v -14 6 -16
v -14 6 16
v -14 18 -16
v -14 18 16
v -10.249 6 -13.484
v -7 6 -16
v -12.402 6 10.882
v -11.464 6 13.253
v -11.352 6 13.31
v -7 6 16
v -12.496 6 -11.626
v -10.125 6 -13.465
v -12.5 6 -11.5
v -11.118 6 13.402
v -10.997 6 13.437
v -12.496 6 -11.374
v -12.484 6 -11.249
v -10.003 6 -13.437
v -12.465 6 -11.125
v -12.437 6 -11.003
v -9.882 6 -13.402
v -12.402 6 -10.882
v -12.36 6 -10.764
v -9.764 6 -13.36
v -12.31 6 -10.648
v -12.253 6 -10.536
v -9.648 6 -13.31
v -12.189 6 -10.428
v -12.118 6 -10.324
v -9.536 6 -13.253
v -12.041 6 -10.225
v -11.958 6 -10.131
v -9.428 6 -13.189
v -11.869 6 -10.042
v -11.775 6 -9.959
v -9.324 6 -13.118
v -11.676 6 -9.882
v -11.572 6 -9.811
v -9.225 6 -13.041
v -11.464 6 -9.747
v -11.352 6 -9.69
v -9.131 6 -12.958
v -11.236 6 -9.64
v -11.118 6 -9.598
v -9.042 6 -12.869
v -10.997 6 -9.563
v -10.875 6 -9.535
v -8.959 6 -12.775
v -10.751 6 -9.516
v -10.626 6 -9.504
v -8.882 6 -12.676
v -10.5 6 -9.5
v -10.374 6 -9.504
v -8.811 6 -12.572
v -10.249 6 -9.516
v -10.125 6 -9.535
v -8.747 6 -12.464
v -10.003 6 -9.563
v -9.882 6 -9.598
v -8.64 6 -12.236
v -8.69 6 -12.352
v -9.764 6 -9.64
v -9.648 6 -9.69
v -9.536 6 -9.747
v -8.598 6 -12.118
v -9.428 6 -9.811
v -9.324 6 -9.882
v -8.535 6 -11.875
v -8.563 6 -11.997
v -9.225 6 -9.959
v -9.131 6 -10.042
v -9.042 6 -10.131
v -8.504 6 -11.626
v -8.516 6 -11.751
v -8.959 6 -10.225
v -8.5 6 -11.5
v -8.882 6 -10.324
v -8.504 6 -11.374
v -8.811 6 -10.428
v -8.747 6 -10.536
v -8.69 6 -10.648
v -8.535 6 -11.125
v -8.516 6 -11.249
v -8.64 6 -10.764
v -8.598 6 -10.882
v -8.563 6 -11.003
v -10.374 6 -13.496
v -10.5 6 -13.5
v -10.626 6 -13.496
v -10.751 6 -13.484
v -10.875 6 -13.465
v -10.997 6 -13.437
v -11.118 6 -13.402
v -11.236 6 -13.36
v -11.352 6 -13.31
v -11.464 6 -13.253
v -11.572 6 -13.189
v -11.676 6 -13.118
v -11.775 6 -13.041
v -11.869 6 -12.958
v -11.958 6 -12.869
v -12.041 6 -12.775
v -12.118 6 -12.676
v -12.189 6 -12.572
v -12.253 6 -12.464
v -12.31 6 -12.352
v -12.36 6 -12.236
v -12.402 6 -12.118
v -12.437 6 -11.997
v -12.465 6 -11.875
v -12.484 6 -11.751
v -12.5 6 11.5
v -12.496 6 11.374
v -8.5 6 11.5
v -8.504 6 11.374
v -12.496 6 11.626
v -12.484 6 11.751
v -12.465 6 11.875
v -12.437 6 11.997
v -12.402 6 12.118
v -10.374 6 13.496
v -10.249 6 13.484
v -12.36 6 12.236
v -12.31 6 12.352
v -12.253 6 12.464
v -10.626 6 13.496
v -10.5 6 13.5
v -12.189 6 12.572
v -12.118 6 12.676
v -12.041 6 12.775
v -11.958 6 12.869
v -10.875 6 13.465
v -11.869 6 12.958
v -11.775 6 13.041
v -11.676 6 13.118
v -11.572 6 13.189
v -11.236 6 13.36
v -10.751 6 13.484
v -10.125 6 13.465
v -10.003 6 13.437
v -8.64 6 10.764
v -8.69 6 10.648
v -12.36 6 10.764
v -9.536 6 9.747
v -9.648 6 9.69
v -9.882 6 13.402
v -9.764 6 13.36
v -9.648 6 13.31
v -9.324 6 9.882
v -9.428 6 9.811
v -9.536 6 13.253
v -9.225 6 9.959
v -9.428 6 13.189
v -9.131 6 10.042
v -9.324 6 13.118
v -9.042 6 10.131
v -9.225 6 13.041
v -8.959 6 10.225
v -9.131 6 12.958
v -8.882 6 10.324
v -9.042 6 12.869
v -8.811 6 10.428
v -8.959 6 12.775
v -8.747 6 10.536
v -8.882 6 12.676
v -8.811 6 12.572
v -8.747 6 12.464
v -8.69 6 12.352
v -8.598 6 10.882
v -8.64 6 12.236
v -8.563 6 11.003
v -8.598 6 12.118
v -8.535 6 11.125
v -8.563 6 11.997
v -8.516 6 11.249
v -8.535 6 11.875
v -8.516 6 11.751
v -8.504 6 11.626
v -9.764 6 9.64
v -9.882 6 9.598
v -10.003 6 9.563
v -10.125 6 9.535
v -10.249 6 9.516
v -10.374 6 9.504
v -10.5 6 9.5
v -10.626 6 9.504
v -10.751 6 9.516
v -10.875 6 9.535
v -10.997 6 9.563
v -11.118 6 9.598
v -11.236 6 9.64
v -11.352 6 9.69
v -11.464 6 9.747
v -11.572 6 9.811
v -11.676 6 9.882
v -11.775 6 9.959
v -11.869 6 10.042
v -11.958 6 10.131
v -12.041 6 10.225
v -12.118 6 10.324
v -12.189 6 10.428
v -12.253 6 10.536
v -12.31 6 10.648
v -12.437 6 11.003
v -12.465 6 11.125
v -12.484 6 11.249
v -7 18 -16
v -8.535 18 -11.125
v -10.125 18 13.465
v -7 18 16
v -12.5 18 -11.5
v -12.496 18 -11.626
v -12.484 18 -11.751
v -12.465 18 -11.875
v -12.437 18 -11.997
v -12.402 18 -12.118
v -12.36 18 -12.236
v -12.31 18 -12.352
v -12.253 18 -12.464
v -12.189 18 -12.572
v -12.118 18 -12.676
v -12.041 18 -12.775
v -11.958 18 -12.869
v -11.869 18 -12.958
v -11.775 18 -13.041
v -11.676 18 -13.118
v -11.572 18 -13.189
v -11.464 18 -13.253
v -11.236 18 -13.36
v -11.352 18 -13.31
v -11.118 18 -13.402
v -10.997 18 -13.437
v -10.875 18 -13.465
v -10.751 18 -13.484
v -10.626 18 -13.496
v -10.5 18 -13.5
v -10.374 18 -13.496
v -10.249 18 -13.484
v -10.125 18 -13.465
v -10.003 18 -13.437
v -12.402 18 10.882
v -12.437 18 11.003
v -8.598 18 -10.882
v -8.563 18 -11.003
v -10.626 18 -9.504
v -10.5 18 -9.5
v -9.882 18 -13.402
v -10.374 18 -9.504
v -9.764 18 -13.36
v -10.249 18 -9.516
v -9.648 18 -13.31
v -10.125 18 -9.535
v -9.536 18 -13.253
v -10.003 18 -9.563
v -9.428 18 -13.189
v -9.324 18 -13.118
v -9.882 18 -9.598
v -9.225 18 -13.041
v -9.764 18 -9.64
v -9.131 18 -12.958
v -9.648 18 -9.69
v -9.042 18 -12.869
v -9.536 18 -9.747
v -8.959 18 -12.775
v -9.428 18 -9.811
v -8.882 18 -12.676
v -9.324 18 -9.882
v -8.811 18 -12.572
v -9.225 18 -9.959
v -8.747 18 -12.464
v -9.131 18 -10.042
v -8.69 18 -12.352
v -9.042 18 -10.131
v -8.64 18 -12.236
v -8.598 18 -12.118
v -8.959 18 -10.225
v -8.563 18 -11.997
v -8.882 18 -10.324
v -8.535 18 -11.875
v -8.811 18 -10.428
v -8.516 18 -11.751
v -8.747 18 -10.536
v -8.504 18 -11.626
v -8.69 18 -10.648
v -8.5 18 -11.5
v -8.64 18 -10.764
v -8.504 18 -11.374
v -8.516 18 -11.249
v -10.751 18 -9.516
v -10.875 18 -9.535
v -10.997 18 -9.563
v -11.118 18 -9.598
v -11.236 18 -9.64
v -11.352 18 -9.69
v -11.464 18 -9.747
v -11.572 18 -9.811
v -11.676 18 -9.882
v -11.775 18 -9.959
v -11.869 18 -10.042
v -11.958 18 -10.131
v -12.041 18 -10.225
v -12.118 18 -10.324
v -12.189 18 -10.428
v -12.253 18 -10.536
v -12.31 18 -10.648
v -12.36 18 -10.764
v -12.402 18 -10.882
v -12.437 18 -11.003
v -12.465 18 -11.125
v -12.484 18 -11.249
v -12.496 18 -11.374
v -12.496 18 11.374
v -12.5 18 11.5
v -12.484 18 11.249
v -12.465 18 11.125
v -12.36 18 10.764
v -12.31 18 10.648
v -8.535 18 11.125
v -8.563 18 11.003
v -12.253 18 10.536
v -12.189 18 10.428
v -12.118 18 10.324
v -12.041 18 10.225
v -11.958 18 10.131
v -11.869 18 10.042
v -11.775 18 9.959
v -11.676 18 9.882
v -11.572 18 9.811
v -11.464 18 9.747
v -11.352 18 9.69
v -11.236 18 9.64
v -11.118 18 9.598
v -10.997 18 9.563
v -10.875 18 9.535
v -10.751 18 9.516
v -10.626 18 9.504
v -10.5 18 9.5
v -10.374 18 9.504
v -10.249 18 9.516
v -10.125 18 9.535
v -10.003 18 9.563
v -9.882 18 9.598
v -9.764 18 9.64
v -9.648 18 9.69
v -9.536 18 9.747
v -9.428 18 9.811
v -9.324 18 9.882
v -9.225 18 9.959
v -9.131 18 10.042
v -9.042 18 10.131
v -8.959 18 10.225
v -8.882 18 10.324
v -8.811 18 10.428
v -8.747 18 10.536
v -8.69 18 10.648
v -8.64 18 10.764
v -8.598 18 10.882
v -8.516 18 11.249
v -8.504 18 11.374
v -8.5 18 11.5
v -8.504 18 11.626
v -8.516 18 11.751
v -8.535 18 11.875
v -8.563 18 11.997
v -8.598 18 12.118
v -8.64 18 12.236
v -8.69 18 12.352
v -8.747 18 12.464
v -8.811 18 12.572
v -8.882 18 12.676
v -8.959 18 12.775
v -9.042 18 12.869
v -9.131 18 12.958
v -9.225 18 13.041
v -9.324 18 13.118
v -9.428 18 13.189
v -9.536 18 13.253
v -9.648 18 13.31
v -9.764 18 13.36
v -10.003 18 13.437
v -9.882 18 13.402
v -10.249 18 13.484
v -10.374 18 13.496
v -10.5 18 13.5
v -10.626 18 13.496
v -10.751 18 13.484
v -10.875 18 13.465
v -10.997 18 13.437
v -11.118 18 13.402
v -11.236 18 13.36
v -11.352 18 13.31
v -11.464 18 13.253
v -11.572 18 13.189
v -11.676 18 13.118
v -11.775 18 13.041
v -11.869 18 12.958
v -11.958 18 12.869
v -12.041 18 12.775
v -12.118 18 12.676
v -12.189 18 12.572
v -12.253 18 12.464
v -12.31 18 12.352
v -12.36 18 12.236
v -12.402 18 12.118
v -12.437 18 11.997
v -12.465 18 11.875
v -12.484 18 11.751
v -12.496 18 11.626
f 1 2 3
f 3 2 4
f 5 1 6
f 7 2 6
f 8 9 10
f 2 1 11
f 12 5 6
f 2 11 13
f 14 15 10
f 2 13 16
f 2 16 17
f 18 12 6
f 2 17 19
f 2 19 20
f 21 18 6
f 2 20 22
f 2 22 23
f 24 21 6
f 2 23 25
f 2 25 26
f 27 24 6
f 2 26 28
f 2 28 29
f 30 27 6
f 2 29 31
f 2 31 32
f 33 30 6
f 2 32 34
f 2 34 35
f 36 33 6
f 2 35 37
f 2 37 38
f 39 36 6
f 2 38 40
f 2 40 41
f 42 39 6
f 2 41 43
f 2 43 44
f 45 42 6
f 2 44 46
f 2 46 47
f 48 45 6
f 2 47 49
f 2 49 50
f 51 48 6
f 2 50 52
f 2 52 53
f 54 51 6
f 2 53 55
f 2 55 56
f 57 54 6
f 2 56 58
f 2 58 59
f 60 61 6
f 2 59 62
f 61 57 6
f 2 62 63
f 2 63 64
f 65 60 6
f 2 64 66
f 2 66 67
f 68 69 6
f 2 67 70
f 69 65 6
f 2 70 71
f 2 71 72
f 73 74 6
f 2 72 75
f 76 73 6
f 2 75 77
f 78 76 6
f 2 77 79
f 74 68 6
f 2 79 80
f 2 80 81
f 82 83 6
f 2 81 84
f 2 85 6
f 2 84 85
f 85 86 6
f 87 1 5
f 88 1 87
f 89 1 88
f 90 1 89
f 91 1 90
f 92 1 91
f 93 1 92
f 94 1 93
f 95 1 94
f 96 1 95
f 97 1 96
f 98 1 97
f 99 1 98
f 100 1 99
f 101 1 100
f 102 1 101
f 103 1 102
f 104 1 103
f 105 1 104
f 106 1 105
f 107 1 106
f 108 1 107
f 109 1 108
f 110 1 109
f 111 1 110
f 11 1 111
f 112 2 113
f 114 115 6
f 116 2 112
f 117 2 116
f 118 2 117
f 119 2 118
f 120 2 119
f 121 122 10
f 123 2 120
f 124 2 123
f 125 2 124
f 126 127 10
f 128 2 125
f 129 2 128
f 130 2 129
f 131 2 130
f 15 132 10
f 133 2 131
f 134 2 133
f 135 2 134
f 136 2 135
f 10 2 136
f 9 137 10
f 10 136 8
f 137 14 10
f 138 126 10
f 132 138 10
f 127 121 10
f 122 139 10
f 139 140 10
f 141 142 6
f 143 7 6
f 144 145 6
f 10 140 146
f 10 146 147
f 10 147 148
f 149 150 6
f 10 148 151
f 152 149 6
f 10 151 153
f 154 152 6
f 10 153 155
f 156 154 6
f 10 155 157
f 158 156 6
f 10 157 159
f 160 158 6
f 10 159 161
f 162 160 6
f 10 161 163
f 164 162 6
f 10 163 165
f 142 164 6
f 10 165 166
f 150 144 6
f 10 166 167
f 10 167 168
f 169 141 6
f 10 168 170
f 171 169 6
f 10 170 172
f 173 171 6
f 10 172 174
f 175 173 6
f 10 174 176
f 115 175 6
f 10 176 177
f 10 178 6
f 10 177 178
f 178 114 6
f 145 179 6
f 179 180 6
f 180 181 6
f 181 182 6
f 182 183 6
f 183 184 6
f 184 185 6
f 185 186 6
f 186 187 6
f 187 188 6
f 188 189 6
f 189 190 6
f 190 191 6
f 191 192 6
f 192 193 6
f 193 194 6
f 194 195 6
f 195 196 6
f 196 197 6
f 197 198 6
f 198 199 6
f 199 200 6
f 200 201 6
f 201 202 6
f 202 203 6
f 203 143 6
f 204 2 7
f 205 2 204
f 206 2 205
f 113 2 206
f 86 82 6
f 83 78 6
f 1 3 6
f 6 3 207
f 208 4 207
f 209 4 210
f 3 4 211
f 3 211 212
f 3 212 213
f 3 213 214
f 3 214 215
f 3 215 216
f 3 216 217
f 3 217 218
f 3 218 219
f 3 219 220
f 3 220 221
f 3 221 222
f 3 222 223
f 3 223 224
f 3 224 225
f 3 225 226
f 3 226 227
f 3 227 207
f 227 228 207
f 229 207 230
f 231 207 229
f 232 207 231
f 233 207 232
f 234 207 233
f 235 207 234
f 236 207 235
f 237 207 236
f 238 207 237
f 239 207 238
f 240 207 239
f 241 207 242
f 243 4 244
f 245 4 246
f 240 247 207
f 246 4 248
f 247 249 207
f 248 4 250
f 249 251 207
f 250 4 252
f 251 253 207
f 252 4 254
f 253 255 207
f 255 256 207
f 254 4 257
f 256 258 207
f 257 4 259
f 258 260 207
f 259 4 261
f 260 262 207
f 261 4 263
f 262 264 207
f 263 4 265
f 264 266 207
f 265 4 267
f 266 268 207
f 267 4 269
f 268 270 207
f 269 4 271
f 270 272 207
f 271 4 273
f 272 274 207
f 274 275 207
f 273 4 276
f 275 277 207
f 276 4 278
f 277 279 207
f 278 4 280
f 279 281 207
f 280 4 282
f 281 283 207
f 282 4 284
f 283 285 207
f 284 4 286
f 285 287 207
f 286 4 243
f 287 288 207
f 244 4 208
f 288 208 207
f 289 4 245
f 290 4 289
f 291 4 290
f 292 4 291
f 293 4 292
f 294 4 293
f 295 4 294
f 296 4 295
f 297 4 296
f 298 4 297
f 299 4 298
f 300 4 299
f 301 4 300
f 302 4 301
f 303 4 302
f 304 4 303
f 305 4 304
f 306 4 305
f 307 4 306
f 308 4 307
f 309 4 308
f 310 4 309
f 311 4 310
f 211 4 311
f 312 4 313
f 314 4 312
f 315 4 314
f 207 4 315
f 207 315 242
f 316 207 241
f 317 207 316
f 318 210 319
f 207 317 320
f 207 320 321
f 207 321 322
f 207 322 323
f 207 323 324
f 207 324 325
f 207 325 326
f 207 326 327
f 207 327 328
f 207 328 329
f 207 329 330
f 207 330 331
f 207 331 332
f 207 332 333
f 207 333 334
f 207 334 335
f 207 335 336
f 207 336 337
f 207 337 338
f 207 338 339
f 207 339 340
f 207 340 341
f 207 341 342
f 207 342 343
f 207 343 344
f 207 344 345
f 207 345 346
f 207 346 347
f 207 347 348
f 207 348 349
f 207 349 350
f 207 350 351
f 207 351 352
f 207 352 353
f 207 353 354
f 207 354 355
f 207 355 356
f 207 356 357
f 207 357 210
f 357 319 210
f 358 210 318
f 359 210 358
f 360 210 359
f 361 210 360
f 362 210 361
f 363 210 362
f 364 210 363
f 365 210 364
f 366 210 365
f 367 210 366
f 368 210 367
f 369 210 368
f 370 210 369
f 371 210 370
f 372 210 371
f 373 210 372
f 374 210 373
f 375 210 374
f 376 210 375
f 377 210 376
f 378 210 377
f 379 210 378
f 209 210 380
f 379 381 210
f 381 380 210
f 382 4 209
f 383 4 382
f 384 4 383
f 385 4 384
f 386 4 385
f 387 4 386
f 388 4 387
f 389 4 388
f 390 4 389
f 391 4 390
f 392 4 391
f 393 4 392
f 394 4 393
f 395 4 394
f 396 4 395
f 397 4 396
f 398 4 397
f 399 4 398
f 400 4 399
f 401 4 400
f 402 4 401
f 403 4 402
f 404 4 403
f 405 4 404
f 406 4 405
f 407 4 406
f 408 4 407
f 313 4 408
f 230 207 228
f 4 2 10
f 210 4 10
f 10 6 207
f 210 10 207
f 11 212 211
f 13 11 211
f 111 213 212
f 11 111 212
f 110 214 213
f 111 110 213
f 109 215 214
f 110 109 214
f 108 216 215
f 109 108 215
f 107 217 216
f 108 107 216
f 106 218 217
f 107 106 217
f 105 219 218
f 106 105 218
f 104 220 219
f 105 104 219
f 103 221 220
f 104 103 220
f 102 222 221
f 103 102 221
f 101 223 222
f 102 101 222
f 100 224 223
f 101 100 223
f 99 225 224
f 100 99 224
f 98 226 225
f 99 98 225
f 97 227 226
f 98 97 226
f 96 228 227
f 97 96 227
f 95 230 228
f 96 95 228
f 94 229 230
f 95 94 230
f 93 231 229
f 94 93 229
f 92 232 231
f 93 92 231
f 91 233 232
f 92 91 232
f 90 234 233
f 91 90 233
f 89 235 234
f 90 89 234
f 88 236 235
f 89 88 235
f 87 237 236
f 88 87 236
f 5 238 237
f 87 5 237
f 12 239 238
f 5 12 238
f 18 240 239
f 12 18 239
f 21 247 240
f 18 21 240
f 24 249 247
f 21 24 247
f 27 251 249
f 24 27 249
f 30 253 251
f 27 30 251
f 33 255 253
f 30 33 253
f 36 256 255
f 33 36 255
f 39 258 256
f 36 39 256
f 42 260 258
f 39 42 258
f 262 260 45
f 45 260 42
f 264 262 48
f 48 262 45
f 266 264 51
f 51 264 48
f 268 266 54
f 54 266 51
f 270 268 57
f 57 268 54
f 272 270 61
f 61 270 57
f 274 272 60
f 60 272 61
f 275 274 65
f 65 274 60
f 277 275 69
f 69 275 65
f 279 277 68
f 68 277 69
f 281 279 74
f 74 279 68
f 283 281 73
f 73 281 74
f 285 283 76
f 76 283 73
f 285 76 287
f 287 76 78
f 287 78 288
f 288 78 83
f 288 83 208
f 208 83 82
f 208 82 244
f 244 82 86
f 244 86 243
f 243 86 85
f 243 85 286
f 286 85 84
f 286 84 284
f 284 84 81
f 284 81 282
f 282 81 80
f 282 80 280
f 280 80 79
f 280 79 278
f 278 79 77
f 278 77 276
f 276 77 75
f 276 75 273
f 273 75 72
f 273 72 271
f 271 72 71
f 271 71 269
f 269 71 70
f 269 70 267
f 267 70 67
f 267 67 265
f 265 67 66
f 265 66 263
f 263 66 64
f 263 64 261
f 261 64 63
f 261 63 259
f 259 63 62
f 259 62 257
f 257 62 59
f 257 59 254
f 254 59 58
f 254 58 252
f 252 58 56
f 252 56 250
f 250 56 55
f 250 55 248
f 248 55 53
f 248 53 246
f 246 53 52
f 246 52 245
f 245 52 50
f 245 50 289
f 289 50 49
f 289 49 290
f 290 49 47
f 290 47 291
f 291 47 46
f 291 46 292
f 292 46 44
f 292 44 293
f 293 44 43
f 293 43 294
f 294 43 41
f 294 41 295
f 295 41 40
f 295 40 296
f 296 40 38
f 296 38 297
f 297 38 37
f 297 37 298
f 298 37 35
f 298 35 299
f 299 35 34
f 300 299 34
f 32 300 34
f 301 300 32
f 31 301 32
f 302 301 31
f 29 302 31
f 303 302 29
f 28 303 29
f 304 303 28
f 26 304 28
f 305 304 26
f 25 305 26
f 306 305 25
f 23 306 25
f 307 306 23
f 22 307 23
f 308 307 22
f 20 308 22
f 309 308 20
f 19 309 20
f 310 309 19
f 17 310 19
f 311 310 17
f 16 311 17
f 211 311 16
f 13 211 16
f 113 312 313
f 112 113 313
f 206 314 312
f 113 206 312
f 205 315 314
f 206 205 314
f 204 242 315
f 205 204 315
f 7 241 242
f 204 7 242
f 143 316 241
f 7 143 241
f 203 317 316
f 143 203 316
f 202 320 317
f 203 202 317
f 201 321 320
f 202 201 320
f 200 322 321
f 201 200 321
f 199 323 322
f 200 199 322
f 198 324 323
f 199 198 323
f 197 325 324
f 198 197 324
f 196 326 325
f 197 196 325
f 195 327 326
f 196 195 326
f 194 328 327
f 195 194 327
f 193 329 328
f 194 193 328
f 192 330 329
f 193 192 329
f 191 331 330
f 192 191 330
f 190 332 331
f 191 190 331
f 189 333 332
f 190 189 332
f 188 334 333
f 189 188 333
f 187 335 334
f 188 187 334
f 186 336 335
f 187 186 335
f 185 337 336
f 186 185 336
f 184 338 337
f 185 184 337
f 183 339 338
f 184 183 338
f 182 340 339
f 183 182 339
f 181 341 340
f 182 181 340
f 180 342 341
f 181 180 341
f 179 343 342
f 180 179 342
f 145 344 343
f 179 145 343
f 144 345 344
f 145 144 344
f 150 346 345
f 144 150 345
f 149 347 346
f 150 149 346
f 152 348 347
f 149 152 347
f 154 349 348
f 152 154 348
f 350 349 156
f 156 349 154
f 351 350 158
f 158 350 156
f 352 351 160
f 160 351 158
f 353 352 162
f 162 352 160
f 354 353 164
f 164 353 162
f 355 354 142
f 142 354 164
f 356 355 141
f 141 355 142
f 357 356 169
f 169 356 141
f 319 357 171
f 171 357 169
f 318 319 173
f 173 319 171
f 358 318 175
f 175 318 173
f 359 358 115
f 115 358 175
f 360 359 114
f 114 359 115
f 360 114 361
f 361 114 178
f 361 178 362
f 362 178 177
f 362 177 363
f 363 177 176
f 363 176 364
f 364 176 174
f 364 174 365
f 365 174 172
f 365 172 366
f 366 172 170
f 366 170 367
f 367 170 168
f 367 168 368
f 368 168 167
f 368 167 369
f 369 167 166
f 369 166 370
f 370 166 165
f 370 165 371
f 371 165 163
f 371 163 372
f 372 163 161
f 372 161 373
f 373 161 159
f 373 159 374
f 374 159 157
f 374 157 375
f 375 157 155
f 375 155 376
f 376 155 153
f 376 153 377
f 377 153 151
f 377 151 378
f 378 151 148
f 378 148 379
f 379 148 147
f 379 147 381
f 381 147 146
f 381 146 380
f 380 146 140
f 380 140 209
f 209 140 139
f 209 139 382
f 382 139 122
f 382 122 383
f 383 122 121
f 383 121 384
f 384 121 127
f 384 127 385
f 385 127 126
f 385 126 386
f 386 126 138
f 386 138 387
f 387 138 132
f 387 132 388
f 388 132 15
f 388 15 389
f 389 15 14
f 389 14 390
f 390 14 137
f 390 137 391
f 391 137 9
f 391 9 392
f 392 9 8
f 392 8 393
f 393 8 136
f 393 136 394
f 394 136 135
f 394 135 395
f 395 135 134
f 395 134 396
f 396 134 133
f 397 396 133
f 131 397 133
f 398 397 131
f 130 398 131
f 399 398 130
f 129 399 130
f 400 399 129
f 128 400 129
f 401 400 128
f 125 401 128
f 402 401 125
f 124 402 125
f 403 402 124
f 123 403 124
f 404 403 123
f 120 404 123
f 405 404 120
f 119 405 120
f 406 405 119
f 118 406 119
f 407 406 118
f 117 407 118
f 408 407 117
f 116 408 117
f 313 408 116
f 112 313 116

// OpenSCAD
difference(){
    union(){
        translate([-14,6,-16])cube([7,12,32]);
    }

    translate([-10.5,20,11.5])rotate([90,0,0])cylinder(r=2, h=20, $fn=100);
    translate([-10.5,20,-11.5])rotate([90,0,0])cylinder(r=2, h=20, $fn=100);
}
